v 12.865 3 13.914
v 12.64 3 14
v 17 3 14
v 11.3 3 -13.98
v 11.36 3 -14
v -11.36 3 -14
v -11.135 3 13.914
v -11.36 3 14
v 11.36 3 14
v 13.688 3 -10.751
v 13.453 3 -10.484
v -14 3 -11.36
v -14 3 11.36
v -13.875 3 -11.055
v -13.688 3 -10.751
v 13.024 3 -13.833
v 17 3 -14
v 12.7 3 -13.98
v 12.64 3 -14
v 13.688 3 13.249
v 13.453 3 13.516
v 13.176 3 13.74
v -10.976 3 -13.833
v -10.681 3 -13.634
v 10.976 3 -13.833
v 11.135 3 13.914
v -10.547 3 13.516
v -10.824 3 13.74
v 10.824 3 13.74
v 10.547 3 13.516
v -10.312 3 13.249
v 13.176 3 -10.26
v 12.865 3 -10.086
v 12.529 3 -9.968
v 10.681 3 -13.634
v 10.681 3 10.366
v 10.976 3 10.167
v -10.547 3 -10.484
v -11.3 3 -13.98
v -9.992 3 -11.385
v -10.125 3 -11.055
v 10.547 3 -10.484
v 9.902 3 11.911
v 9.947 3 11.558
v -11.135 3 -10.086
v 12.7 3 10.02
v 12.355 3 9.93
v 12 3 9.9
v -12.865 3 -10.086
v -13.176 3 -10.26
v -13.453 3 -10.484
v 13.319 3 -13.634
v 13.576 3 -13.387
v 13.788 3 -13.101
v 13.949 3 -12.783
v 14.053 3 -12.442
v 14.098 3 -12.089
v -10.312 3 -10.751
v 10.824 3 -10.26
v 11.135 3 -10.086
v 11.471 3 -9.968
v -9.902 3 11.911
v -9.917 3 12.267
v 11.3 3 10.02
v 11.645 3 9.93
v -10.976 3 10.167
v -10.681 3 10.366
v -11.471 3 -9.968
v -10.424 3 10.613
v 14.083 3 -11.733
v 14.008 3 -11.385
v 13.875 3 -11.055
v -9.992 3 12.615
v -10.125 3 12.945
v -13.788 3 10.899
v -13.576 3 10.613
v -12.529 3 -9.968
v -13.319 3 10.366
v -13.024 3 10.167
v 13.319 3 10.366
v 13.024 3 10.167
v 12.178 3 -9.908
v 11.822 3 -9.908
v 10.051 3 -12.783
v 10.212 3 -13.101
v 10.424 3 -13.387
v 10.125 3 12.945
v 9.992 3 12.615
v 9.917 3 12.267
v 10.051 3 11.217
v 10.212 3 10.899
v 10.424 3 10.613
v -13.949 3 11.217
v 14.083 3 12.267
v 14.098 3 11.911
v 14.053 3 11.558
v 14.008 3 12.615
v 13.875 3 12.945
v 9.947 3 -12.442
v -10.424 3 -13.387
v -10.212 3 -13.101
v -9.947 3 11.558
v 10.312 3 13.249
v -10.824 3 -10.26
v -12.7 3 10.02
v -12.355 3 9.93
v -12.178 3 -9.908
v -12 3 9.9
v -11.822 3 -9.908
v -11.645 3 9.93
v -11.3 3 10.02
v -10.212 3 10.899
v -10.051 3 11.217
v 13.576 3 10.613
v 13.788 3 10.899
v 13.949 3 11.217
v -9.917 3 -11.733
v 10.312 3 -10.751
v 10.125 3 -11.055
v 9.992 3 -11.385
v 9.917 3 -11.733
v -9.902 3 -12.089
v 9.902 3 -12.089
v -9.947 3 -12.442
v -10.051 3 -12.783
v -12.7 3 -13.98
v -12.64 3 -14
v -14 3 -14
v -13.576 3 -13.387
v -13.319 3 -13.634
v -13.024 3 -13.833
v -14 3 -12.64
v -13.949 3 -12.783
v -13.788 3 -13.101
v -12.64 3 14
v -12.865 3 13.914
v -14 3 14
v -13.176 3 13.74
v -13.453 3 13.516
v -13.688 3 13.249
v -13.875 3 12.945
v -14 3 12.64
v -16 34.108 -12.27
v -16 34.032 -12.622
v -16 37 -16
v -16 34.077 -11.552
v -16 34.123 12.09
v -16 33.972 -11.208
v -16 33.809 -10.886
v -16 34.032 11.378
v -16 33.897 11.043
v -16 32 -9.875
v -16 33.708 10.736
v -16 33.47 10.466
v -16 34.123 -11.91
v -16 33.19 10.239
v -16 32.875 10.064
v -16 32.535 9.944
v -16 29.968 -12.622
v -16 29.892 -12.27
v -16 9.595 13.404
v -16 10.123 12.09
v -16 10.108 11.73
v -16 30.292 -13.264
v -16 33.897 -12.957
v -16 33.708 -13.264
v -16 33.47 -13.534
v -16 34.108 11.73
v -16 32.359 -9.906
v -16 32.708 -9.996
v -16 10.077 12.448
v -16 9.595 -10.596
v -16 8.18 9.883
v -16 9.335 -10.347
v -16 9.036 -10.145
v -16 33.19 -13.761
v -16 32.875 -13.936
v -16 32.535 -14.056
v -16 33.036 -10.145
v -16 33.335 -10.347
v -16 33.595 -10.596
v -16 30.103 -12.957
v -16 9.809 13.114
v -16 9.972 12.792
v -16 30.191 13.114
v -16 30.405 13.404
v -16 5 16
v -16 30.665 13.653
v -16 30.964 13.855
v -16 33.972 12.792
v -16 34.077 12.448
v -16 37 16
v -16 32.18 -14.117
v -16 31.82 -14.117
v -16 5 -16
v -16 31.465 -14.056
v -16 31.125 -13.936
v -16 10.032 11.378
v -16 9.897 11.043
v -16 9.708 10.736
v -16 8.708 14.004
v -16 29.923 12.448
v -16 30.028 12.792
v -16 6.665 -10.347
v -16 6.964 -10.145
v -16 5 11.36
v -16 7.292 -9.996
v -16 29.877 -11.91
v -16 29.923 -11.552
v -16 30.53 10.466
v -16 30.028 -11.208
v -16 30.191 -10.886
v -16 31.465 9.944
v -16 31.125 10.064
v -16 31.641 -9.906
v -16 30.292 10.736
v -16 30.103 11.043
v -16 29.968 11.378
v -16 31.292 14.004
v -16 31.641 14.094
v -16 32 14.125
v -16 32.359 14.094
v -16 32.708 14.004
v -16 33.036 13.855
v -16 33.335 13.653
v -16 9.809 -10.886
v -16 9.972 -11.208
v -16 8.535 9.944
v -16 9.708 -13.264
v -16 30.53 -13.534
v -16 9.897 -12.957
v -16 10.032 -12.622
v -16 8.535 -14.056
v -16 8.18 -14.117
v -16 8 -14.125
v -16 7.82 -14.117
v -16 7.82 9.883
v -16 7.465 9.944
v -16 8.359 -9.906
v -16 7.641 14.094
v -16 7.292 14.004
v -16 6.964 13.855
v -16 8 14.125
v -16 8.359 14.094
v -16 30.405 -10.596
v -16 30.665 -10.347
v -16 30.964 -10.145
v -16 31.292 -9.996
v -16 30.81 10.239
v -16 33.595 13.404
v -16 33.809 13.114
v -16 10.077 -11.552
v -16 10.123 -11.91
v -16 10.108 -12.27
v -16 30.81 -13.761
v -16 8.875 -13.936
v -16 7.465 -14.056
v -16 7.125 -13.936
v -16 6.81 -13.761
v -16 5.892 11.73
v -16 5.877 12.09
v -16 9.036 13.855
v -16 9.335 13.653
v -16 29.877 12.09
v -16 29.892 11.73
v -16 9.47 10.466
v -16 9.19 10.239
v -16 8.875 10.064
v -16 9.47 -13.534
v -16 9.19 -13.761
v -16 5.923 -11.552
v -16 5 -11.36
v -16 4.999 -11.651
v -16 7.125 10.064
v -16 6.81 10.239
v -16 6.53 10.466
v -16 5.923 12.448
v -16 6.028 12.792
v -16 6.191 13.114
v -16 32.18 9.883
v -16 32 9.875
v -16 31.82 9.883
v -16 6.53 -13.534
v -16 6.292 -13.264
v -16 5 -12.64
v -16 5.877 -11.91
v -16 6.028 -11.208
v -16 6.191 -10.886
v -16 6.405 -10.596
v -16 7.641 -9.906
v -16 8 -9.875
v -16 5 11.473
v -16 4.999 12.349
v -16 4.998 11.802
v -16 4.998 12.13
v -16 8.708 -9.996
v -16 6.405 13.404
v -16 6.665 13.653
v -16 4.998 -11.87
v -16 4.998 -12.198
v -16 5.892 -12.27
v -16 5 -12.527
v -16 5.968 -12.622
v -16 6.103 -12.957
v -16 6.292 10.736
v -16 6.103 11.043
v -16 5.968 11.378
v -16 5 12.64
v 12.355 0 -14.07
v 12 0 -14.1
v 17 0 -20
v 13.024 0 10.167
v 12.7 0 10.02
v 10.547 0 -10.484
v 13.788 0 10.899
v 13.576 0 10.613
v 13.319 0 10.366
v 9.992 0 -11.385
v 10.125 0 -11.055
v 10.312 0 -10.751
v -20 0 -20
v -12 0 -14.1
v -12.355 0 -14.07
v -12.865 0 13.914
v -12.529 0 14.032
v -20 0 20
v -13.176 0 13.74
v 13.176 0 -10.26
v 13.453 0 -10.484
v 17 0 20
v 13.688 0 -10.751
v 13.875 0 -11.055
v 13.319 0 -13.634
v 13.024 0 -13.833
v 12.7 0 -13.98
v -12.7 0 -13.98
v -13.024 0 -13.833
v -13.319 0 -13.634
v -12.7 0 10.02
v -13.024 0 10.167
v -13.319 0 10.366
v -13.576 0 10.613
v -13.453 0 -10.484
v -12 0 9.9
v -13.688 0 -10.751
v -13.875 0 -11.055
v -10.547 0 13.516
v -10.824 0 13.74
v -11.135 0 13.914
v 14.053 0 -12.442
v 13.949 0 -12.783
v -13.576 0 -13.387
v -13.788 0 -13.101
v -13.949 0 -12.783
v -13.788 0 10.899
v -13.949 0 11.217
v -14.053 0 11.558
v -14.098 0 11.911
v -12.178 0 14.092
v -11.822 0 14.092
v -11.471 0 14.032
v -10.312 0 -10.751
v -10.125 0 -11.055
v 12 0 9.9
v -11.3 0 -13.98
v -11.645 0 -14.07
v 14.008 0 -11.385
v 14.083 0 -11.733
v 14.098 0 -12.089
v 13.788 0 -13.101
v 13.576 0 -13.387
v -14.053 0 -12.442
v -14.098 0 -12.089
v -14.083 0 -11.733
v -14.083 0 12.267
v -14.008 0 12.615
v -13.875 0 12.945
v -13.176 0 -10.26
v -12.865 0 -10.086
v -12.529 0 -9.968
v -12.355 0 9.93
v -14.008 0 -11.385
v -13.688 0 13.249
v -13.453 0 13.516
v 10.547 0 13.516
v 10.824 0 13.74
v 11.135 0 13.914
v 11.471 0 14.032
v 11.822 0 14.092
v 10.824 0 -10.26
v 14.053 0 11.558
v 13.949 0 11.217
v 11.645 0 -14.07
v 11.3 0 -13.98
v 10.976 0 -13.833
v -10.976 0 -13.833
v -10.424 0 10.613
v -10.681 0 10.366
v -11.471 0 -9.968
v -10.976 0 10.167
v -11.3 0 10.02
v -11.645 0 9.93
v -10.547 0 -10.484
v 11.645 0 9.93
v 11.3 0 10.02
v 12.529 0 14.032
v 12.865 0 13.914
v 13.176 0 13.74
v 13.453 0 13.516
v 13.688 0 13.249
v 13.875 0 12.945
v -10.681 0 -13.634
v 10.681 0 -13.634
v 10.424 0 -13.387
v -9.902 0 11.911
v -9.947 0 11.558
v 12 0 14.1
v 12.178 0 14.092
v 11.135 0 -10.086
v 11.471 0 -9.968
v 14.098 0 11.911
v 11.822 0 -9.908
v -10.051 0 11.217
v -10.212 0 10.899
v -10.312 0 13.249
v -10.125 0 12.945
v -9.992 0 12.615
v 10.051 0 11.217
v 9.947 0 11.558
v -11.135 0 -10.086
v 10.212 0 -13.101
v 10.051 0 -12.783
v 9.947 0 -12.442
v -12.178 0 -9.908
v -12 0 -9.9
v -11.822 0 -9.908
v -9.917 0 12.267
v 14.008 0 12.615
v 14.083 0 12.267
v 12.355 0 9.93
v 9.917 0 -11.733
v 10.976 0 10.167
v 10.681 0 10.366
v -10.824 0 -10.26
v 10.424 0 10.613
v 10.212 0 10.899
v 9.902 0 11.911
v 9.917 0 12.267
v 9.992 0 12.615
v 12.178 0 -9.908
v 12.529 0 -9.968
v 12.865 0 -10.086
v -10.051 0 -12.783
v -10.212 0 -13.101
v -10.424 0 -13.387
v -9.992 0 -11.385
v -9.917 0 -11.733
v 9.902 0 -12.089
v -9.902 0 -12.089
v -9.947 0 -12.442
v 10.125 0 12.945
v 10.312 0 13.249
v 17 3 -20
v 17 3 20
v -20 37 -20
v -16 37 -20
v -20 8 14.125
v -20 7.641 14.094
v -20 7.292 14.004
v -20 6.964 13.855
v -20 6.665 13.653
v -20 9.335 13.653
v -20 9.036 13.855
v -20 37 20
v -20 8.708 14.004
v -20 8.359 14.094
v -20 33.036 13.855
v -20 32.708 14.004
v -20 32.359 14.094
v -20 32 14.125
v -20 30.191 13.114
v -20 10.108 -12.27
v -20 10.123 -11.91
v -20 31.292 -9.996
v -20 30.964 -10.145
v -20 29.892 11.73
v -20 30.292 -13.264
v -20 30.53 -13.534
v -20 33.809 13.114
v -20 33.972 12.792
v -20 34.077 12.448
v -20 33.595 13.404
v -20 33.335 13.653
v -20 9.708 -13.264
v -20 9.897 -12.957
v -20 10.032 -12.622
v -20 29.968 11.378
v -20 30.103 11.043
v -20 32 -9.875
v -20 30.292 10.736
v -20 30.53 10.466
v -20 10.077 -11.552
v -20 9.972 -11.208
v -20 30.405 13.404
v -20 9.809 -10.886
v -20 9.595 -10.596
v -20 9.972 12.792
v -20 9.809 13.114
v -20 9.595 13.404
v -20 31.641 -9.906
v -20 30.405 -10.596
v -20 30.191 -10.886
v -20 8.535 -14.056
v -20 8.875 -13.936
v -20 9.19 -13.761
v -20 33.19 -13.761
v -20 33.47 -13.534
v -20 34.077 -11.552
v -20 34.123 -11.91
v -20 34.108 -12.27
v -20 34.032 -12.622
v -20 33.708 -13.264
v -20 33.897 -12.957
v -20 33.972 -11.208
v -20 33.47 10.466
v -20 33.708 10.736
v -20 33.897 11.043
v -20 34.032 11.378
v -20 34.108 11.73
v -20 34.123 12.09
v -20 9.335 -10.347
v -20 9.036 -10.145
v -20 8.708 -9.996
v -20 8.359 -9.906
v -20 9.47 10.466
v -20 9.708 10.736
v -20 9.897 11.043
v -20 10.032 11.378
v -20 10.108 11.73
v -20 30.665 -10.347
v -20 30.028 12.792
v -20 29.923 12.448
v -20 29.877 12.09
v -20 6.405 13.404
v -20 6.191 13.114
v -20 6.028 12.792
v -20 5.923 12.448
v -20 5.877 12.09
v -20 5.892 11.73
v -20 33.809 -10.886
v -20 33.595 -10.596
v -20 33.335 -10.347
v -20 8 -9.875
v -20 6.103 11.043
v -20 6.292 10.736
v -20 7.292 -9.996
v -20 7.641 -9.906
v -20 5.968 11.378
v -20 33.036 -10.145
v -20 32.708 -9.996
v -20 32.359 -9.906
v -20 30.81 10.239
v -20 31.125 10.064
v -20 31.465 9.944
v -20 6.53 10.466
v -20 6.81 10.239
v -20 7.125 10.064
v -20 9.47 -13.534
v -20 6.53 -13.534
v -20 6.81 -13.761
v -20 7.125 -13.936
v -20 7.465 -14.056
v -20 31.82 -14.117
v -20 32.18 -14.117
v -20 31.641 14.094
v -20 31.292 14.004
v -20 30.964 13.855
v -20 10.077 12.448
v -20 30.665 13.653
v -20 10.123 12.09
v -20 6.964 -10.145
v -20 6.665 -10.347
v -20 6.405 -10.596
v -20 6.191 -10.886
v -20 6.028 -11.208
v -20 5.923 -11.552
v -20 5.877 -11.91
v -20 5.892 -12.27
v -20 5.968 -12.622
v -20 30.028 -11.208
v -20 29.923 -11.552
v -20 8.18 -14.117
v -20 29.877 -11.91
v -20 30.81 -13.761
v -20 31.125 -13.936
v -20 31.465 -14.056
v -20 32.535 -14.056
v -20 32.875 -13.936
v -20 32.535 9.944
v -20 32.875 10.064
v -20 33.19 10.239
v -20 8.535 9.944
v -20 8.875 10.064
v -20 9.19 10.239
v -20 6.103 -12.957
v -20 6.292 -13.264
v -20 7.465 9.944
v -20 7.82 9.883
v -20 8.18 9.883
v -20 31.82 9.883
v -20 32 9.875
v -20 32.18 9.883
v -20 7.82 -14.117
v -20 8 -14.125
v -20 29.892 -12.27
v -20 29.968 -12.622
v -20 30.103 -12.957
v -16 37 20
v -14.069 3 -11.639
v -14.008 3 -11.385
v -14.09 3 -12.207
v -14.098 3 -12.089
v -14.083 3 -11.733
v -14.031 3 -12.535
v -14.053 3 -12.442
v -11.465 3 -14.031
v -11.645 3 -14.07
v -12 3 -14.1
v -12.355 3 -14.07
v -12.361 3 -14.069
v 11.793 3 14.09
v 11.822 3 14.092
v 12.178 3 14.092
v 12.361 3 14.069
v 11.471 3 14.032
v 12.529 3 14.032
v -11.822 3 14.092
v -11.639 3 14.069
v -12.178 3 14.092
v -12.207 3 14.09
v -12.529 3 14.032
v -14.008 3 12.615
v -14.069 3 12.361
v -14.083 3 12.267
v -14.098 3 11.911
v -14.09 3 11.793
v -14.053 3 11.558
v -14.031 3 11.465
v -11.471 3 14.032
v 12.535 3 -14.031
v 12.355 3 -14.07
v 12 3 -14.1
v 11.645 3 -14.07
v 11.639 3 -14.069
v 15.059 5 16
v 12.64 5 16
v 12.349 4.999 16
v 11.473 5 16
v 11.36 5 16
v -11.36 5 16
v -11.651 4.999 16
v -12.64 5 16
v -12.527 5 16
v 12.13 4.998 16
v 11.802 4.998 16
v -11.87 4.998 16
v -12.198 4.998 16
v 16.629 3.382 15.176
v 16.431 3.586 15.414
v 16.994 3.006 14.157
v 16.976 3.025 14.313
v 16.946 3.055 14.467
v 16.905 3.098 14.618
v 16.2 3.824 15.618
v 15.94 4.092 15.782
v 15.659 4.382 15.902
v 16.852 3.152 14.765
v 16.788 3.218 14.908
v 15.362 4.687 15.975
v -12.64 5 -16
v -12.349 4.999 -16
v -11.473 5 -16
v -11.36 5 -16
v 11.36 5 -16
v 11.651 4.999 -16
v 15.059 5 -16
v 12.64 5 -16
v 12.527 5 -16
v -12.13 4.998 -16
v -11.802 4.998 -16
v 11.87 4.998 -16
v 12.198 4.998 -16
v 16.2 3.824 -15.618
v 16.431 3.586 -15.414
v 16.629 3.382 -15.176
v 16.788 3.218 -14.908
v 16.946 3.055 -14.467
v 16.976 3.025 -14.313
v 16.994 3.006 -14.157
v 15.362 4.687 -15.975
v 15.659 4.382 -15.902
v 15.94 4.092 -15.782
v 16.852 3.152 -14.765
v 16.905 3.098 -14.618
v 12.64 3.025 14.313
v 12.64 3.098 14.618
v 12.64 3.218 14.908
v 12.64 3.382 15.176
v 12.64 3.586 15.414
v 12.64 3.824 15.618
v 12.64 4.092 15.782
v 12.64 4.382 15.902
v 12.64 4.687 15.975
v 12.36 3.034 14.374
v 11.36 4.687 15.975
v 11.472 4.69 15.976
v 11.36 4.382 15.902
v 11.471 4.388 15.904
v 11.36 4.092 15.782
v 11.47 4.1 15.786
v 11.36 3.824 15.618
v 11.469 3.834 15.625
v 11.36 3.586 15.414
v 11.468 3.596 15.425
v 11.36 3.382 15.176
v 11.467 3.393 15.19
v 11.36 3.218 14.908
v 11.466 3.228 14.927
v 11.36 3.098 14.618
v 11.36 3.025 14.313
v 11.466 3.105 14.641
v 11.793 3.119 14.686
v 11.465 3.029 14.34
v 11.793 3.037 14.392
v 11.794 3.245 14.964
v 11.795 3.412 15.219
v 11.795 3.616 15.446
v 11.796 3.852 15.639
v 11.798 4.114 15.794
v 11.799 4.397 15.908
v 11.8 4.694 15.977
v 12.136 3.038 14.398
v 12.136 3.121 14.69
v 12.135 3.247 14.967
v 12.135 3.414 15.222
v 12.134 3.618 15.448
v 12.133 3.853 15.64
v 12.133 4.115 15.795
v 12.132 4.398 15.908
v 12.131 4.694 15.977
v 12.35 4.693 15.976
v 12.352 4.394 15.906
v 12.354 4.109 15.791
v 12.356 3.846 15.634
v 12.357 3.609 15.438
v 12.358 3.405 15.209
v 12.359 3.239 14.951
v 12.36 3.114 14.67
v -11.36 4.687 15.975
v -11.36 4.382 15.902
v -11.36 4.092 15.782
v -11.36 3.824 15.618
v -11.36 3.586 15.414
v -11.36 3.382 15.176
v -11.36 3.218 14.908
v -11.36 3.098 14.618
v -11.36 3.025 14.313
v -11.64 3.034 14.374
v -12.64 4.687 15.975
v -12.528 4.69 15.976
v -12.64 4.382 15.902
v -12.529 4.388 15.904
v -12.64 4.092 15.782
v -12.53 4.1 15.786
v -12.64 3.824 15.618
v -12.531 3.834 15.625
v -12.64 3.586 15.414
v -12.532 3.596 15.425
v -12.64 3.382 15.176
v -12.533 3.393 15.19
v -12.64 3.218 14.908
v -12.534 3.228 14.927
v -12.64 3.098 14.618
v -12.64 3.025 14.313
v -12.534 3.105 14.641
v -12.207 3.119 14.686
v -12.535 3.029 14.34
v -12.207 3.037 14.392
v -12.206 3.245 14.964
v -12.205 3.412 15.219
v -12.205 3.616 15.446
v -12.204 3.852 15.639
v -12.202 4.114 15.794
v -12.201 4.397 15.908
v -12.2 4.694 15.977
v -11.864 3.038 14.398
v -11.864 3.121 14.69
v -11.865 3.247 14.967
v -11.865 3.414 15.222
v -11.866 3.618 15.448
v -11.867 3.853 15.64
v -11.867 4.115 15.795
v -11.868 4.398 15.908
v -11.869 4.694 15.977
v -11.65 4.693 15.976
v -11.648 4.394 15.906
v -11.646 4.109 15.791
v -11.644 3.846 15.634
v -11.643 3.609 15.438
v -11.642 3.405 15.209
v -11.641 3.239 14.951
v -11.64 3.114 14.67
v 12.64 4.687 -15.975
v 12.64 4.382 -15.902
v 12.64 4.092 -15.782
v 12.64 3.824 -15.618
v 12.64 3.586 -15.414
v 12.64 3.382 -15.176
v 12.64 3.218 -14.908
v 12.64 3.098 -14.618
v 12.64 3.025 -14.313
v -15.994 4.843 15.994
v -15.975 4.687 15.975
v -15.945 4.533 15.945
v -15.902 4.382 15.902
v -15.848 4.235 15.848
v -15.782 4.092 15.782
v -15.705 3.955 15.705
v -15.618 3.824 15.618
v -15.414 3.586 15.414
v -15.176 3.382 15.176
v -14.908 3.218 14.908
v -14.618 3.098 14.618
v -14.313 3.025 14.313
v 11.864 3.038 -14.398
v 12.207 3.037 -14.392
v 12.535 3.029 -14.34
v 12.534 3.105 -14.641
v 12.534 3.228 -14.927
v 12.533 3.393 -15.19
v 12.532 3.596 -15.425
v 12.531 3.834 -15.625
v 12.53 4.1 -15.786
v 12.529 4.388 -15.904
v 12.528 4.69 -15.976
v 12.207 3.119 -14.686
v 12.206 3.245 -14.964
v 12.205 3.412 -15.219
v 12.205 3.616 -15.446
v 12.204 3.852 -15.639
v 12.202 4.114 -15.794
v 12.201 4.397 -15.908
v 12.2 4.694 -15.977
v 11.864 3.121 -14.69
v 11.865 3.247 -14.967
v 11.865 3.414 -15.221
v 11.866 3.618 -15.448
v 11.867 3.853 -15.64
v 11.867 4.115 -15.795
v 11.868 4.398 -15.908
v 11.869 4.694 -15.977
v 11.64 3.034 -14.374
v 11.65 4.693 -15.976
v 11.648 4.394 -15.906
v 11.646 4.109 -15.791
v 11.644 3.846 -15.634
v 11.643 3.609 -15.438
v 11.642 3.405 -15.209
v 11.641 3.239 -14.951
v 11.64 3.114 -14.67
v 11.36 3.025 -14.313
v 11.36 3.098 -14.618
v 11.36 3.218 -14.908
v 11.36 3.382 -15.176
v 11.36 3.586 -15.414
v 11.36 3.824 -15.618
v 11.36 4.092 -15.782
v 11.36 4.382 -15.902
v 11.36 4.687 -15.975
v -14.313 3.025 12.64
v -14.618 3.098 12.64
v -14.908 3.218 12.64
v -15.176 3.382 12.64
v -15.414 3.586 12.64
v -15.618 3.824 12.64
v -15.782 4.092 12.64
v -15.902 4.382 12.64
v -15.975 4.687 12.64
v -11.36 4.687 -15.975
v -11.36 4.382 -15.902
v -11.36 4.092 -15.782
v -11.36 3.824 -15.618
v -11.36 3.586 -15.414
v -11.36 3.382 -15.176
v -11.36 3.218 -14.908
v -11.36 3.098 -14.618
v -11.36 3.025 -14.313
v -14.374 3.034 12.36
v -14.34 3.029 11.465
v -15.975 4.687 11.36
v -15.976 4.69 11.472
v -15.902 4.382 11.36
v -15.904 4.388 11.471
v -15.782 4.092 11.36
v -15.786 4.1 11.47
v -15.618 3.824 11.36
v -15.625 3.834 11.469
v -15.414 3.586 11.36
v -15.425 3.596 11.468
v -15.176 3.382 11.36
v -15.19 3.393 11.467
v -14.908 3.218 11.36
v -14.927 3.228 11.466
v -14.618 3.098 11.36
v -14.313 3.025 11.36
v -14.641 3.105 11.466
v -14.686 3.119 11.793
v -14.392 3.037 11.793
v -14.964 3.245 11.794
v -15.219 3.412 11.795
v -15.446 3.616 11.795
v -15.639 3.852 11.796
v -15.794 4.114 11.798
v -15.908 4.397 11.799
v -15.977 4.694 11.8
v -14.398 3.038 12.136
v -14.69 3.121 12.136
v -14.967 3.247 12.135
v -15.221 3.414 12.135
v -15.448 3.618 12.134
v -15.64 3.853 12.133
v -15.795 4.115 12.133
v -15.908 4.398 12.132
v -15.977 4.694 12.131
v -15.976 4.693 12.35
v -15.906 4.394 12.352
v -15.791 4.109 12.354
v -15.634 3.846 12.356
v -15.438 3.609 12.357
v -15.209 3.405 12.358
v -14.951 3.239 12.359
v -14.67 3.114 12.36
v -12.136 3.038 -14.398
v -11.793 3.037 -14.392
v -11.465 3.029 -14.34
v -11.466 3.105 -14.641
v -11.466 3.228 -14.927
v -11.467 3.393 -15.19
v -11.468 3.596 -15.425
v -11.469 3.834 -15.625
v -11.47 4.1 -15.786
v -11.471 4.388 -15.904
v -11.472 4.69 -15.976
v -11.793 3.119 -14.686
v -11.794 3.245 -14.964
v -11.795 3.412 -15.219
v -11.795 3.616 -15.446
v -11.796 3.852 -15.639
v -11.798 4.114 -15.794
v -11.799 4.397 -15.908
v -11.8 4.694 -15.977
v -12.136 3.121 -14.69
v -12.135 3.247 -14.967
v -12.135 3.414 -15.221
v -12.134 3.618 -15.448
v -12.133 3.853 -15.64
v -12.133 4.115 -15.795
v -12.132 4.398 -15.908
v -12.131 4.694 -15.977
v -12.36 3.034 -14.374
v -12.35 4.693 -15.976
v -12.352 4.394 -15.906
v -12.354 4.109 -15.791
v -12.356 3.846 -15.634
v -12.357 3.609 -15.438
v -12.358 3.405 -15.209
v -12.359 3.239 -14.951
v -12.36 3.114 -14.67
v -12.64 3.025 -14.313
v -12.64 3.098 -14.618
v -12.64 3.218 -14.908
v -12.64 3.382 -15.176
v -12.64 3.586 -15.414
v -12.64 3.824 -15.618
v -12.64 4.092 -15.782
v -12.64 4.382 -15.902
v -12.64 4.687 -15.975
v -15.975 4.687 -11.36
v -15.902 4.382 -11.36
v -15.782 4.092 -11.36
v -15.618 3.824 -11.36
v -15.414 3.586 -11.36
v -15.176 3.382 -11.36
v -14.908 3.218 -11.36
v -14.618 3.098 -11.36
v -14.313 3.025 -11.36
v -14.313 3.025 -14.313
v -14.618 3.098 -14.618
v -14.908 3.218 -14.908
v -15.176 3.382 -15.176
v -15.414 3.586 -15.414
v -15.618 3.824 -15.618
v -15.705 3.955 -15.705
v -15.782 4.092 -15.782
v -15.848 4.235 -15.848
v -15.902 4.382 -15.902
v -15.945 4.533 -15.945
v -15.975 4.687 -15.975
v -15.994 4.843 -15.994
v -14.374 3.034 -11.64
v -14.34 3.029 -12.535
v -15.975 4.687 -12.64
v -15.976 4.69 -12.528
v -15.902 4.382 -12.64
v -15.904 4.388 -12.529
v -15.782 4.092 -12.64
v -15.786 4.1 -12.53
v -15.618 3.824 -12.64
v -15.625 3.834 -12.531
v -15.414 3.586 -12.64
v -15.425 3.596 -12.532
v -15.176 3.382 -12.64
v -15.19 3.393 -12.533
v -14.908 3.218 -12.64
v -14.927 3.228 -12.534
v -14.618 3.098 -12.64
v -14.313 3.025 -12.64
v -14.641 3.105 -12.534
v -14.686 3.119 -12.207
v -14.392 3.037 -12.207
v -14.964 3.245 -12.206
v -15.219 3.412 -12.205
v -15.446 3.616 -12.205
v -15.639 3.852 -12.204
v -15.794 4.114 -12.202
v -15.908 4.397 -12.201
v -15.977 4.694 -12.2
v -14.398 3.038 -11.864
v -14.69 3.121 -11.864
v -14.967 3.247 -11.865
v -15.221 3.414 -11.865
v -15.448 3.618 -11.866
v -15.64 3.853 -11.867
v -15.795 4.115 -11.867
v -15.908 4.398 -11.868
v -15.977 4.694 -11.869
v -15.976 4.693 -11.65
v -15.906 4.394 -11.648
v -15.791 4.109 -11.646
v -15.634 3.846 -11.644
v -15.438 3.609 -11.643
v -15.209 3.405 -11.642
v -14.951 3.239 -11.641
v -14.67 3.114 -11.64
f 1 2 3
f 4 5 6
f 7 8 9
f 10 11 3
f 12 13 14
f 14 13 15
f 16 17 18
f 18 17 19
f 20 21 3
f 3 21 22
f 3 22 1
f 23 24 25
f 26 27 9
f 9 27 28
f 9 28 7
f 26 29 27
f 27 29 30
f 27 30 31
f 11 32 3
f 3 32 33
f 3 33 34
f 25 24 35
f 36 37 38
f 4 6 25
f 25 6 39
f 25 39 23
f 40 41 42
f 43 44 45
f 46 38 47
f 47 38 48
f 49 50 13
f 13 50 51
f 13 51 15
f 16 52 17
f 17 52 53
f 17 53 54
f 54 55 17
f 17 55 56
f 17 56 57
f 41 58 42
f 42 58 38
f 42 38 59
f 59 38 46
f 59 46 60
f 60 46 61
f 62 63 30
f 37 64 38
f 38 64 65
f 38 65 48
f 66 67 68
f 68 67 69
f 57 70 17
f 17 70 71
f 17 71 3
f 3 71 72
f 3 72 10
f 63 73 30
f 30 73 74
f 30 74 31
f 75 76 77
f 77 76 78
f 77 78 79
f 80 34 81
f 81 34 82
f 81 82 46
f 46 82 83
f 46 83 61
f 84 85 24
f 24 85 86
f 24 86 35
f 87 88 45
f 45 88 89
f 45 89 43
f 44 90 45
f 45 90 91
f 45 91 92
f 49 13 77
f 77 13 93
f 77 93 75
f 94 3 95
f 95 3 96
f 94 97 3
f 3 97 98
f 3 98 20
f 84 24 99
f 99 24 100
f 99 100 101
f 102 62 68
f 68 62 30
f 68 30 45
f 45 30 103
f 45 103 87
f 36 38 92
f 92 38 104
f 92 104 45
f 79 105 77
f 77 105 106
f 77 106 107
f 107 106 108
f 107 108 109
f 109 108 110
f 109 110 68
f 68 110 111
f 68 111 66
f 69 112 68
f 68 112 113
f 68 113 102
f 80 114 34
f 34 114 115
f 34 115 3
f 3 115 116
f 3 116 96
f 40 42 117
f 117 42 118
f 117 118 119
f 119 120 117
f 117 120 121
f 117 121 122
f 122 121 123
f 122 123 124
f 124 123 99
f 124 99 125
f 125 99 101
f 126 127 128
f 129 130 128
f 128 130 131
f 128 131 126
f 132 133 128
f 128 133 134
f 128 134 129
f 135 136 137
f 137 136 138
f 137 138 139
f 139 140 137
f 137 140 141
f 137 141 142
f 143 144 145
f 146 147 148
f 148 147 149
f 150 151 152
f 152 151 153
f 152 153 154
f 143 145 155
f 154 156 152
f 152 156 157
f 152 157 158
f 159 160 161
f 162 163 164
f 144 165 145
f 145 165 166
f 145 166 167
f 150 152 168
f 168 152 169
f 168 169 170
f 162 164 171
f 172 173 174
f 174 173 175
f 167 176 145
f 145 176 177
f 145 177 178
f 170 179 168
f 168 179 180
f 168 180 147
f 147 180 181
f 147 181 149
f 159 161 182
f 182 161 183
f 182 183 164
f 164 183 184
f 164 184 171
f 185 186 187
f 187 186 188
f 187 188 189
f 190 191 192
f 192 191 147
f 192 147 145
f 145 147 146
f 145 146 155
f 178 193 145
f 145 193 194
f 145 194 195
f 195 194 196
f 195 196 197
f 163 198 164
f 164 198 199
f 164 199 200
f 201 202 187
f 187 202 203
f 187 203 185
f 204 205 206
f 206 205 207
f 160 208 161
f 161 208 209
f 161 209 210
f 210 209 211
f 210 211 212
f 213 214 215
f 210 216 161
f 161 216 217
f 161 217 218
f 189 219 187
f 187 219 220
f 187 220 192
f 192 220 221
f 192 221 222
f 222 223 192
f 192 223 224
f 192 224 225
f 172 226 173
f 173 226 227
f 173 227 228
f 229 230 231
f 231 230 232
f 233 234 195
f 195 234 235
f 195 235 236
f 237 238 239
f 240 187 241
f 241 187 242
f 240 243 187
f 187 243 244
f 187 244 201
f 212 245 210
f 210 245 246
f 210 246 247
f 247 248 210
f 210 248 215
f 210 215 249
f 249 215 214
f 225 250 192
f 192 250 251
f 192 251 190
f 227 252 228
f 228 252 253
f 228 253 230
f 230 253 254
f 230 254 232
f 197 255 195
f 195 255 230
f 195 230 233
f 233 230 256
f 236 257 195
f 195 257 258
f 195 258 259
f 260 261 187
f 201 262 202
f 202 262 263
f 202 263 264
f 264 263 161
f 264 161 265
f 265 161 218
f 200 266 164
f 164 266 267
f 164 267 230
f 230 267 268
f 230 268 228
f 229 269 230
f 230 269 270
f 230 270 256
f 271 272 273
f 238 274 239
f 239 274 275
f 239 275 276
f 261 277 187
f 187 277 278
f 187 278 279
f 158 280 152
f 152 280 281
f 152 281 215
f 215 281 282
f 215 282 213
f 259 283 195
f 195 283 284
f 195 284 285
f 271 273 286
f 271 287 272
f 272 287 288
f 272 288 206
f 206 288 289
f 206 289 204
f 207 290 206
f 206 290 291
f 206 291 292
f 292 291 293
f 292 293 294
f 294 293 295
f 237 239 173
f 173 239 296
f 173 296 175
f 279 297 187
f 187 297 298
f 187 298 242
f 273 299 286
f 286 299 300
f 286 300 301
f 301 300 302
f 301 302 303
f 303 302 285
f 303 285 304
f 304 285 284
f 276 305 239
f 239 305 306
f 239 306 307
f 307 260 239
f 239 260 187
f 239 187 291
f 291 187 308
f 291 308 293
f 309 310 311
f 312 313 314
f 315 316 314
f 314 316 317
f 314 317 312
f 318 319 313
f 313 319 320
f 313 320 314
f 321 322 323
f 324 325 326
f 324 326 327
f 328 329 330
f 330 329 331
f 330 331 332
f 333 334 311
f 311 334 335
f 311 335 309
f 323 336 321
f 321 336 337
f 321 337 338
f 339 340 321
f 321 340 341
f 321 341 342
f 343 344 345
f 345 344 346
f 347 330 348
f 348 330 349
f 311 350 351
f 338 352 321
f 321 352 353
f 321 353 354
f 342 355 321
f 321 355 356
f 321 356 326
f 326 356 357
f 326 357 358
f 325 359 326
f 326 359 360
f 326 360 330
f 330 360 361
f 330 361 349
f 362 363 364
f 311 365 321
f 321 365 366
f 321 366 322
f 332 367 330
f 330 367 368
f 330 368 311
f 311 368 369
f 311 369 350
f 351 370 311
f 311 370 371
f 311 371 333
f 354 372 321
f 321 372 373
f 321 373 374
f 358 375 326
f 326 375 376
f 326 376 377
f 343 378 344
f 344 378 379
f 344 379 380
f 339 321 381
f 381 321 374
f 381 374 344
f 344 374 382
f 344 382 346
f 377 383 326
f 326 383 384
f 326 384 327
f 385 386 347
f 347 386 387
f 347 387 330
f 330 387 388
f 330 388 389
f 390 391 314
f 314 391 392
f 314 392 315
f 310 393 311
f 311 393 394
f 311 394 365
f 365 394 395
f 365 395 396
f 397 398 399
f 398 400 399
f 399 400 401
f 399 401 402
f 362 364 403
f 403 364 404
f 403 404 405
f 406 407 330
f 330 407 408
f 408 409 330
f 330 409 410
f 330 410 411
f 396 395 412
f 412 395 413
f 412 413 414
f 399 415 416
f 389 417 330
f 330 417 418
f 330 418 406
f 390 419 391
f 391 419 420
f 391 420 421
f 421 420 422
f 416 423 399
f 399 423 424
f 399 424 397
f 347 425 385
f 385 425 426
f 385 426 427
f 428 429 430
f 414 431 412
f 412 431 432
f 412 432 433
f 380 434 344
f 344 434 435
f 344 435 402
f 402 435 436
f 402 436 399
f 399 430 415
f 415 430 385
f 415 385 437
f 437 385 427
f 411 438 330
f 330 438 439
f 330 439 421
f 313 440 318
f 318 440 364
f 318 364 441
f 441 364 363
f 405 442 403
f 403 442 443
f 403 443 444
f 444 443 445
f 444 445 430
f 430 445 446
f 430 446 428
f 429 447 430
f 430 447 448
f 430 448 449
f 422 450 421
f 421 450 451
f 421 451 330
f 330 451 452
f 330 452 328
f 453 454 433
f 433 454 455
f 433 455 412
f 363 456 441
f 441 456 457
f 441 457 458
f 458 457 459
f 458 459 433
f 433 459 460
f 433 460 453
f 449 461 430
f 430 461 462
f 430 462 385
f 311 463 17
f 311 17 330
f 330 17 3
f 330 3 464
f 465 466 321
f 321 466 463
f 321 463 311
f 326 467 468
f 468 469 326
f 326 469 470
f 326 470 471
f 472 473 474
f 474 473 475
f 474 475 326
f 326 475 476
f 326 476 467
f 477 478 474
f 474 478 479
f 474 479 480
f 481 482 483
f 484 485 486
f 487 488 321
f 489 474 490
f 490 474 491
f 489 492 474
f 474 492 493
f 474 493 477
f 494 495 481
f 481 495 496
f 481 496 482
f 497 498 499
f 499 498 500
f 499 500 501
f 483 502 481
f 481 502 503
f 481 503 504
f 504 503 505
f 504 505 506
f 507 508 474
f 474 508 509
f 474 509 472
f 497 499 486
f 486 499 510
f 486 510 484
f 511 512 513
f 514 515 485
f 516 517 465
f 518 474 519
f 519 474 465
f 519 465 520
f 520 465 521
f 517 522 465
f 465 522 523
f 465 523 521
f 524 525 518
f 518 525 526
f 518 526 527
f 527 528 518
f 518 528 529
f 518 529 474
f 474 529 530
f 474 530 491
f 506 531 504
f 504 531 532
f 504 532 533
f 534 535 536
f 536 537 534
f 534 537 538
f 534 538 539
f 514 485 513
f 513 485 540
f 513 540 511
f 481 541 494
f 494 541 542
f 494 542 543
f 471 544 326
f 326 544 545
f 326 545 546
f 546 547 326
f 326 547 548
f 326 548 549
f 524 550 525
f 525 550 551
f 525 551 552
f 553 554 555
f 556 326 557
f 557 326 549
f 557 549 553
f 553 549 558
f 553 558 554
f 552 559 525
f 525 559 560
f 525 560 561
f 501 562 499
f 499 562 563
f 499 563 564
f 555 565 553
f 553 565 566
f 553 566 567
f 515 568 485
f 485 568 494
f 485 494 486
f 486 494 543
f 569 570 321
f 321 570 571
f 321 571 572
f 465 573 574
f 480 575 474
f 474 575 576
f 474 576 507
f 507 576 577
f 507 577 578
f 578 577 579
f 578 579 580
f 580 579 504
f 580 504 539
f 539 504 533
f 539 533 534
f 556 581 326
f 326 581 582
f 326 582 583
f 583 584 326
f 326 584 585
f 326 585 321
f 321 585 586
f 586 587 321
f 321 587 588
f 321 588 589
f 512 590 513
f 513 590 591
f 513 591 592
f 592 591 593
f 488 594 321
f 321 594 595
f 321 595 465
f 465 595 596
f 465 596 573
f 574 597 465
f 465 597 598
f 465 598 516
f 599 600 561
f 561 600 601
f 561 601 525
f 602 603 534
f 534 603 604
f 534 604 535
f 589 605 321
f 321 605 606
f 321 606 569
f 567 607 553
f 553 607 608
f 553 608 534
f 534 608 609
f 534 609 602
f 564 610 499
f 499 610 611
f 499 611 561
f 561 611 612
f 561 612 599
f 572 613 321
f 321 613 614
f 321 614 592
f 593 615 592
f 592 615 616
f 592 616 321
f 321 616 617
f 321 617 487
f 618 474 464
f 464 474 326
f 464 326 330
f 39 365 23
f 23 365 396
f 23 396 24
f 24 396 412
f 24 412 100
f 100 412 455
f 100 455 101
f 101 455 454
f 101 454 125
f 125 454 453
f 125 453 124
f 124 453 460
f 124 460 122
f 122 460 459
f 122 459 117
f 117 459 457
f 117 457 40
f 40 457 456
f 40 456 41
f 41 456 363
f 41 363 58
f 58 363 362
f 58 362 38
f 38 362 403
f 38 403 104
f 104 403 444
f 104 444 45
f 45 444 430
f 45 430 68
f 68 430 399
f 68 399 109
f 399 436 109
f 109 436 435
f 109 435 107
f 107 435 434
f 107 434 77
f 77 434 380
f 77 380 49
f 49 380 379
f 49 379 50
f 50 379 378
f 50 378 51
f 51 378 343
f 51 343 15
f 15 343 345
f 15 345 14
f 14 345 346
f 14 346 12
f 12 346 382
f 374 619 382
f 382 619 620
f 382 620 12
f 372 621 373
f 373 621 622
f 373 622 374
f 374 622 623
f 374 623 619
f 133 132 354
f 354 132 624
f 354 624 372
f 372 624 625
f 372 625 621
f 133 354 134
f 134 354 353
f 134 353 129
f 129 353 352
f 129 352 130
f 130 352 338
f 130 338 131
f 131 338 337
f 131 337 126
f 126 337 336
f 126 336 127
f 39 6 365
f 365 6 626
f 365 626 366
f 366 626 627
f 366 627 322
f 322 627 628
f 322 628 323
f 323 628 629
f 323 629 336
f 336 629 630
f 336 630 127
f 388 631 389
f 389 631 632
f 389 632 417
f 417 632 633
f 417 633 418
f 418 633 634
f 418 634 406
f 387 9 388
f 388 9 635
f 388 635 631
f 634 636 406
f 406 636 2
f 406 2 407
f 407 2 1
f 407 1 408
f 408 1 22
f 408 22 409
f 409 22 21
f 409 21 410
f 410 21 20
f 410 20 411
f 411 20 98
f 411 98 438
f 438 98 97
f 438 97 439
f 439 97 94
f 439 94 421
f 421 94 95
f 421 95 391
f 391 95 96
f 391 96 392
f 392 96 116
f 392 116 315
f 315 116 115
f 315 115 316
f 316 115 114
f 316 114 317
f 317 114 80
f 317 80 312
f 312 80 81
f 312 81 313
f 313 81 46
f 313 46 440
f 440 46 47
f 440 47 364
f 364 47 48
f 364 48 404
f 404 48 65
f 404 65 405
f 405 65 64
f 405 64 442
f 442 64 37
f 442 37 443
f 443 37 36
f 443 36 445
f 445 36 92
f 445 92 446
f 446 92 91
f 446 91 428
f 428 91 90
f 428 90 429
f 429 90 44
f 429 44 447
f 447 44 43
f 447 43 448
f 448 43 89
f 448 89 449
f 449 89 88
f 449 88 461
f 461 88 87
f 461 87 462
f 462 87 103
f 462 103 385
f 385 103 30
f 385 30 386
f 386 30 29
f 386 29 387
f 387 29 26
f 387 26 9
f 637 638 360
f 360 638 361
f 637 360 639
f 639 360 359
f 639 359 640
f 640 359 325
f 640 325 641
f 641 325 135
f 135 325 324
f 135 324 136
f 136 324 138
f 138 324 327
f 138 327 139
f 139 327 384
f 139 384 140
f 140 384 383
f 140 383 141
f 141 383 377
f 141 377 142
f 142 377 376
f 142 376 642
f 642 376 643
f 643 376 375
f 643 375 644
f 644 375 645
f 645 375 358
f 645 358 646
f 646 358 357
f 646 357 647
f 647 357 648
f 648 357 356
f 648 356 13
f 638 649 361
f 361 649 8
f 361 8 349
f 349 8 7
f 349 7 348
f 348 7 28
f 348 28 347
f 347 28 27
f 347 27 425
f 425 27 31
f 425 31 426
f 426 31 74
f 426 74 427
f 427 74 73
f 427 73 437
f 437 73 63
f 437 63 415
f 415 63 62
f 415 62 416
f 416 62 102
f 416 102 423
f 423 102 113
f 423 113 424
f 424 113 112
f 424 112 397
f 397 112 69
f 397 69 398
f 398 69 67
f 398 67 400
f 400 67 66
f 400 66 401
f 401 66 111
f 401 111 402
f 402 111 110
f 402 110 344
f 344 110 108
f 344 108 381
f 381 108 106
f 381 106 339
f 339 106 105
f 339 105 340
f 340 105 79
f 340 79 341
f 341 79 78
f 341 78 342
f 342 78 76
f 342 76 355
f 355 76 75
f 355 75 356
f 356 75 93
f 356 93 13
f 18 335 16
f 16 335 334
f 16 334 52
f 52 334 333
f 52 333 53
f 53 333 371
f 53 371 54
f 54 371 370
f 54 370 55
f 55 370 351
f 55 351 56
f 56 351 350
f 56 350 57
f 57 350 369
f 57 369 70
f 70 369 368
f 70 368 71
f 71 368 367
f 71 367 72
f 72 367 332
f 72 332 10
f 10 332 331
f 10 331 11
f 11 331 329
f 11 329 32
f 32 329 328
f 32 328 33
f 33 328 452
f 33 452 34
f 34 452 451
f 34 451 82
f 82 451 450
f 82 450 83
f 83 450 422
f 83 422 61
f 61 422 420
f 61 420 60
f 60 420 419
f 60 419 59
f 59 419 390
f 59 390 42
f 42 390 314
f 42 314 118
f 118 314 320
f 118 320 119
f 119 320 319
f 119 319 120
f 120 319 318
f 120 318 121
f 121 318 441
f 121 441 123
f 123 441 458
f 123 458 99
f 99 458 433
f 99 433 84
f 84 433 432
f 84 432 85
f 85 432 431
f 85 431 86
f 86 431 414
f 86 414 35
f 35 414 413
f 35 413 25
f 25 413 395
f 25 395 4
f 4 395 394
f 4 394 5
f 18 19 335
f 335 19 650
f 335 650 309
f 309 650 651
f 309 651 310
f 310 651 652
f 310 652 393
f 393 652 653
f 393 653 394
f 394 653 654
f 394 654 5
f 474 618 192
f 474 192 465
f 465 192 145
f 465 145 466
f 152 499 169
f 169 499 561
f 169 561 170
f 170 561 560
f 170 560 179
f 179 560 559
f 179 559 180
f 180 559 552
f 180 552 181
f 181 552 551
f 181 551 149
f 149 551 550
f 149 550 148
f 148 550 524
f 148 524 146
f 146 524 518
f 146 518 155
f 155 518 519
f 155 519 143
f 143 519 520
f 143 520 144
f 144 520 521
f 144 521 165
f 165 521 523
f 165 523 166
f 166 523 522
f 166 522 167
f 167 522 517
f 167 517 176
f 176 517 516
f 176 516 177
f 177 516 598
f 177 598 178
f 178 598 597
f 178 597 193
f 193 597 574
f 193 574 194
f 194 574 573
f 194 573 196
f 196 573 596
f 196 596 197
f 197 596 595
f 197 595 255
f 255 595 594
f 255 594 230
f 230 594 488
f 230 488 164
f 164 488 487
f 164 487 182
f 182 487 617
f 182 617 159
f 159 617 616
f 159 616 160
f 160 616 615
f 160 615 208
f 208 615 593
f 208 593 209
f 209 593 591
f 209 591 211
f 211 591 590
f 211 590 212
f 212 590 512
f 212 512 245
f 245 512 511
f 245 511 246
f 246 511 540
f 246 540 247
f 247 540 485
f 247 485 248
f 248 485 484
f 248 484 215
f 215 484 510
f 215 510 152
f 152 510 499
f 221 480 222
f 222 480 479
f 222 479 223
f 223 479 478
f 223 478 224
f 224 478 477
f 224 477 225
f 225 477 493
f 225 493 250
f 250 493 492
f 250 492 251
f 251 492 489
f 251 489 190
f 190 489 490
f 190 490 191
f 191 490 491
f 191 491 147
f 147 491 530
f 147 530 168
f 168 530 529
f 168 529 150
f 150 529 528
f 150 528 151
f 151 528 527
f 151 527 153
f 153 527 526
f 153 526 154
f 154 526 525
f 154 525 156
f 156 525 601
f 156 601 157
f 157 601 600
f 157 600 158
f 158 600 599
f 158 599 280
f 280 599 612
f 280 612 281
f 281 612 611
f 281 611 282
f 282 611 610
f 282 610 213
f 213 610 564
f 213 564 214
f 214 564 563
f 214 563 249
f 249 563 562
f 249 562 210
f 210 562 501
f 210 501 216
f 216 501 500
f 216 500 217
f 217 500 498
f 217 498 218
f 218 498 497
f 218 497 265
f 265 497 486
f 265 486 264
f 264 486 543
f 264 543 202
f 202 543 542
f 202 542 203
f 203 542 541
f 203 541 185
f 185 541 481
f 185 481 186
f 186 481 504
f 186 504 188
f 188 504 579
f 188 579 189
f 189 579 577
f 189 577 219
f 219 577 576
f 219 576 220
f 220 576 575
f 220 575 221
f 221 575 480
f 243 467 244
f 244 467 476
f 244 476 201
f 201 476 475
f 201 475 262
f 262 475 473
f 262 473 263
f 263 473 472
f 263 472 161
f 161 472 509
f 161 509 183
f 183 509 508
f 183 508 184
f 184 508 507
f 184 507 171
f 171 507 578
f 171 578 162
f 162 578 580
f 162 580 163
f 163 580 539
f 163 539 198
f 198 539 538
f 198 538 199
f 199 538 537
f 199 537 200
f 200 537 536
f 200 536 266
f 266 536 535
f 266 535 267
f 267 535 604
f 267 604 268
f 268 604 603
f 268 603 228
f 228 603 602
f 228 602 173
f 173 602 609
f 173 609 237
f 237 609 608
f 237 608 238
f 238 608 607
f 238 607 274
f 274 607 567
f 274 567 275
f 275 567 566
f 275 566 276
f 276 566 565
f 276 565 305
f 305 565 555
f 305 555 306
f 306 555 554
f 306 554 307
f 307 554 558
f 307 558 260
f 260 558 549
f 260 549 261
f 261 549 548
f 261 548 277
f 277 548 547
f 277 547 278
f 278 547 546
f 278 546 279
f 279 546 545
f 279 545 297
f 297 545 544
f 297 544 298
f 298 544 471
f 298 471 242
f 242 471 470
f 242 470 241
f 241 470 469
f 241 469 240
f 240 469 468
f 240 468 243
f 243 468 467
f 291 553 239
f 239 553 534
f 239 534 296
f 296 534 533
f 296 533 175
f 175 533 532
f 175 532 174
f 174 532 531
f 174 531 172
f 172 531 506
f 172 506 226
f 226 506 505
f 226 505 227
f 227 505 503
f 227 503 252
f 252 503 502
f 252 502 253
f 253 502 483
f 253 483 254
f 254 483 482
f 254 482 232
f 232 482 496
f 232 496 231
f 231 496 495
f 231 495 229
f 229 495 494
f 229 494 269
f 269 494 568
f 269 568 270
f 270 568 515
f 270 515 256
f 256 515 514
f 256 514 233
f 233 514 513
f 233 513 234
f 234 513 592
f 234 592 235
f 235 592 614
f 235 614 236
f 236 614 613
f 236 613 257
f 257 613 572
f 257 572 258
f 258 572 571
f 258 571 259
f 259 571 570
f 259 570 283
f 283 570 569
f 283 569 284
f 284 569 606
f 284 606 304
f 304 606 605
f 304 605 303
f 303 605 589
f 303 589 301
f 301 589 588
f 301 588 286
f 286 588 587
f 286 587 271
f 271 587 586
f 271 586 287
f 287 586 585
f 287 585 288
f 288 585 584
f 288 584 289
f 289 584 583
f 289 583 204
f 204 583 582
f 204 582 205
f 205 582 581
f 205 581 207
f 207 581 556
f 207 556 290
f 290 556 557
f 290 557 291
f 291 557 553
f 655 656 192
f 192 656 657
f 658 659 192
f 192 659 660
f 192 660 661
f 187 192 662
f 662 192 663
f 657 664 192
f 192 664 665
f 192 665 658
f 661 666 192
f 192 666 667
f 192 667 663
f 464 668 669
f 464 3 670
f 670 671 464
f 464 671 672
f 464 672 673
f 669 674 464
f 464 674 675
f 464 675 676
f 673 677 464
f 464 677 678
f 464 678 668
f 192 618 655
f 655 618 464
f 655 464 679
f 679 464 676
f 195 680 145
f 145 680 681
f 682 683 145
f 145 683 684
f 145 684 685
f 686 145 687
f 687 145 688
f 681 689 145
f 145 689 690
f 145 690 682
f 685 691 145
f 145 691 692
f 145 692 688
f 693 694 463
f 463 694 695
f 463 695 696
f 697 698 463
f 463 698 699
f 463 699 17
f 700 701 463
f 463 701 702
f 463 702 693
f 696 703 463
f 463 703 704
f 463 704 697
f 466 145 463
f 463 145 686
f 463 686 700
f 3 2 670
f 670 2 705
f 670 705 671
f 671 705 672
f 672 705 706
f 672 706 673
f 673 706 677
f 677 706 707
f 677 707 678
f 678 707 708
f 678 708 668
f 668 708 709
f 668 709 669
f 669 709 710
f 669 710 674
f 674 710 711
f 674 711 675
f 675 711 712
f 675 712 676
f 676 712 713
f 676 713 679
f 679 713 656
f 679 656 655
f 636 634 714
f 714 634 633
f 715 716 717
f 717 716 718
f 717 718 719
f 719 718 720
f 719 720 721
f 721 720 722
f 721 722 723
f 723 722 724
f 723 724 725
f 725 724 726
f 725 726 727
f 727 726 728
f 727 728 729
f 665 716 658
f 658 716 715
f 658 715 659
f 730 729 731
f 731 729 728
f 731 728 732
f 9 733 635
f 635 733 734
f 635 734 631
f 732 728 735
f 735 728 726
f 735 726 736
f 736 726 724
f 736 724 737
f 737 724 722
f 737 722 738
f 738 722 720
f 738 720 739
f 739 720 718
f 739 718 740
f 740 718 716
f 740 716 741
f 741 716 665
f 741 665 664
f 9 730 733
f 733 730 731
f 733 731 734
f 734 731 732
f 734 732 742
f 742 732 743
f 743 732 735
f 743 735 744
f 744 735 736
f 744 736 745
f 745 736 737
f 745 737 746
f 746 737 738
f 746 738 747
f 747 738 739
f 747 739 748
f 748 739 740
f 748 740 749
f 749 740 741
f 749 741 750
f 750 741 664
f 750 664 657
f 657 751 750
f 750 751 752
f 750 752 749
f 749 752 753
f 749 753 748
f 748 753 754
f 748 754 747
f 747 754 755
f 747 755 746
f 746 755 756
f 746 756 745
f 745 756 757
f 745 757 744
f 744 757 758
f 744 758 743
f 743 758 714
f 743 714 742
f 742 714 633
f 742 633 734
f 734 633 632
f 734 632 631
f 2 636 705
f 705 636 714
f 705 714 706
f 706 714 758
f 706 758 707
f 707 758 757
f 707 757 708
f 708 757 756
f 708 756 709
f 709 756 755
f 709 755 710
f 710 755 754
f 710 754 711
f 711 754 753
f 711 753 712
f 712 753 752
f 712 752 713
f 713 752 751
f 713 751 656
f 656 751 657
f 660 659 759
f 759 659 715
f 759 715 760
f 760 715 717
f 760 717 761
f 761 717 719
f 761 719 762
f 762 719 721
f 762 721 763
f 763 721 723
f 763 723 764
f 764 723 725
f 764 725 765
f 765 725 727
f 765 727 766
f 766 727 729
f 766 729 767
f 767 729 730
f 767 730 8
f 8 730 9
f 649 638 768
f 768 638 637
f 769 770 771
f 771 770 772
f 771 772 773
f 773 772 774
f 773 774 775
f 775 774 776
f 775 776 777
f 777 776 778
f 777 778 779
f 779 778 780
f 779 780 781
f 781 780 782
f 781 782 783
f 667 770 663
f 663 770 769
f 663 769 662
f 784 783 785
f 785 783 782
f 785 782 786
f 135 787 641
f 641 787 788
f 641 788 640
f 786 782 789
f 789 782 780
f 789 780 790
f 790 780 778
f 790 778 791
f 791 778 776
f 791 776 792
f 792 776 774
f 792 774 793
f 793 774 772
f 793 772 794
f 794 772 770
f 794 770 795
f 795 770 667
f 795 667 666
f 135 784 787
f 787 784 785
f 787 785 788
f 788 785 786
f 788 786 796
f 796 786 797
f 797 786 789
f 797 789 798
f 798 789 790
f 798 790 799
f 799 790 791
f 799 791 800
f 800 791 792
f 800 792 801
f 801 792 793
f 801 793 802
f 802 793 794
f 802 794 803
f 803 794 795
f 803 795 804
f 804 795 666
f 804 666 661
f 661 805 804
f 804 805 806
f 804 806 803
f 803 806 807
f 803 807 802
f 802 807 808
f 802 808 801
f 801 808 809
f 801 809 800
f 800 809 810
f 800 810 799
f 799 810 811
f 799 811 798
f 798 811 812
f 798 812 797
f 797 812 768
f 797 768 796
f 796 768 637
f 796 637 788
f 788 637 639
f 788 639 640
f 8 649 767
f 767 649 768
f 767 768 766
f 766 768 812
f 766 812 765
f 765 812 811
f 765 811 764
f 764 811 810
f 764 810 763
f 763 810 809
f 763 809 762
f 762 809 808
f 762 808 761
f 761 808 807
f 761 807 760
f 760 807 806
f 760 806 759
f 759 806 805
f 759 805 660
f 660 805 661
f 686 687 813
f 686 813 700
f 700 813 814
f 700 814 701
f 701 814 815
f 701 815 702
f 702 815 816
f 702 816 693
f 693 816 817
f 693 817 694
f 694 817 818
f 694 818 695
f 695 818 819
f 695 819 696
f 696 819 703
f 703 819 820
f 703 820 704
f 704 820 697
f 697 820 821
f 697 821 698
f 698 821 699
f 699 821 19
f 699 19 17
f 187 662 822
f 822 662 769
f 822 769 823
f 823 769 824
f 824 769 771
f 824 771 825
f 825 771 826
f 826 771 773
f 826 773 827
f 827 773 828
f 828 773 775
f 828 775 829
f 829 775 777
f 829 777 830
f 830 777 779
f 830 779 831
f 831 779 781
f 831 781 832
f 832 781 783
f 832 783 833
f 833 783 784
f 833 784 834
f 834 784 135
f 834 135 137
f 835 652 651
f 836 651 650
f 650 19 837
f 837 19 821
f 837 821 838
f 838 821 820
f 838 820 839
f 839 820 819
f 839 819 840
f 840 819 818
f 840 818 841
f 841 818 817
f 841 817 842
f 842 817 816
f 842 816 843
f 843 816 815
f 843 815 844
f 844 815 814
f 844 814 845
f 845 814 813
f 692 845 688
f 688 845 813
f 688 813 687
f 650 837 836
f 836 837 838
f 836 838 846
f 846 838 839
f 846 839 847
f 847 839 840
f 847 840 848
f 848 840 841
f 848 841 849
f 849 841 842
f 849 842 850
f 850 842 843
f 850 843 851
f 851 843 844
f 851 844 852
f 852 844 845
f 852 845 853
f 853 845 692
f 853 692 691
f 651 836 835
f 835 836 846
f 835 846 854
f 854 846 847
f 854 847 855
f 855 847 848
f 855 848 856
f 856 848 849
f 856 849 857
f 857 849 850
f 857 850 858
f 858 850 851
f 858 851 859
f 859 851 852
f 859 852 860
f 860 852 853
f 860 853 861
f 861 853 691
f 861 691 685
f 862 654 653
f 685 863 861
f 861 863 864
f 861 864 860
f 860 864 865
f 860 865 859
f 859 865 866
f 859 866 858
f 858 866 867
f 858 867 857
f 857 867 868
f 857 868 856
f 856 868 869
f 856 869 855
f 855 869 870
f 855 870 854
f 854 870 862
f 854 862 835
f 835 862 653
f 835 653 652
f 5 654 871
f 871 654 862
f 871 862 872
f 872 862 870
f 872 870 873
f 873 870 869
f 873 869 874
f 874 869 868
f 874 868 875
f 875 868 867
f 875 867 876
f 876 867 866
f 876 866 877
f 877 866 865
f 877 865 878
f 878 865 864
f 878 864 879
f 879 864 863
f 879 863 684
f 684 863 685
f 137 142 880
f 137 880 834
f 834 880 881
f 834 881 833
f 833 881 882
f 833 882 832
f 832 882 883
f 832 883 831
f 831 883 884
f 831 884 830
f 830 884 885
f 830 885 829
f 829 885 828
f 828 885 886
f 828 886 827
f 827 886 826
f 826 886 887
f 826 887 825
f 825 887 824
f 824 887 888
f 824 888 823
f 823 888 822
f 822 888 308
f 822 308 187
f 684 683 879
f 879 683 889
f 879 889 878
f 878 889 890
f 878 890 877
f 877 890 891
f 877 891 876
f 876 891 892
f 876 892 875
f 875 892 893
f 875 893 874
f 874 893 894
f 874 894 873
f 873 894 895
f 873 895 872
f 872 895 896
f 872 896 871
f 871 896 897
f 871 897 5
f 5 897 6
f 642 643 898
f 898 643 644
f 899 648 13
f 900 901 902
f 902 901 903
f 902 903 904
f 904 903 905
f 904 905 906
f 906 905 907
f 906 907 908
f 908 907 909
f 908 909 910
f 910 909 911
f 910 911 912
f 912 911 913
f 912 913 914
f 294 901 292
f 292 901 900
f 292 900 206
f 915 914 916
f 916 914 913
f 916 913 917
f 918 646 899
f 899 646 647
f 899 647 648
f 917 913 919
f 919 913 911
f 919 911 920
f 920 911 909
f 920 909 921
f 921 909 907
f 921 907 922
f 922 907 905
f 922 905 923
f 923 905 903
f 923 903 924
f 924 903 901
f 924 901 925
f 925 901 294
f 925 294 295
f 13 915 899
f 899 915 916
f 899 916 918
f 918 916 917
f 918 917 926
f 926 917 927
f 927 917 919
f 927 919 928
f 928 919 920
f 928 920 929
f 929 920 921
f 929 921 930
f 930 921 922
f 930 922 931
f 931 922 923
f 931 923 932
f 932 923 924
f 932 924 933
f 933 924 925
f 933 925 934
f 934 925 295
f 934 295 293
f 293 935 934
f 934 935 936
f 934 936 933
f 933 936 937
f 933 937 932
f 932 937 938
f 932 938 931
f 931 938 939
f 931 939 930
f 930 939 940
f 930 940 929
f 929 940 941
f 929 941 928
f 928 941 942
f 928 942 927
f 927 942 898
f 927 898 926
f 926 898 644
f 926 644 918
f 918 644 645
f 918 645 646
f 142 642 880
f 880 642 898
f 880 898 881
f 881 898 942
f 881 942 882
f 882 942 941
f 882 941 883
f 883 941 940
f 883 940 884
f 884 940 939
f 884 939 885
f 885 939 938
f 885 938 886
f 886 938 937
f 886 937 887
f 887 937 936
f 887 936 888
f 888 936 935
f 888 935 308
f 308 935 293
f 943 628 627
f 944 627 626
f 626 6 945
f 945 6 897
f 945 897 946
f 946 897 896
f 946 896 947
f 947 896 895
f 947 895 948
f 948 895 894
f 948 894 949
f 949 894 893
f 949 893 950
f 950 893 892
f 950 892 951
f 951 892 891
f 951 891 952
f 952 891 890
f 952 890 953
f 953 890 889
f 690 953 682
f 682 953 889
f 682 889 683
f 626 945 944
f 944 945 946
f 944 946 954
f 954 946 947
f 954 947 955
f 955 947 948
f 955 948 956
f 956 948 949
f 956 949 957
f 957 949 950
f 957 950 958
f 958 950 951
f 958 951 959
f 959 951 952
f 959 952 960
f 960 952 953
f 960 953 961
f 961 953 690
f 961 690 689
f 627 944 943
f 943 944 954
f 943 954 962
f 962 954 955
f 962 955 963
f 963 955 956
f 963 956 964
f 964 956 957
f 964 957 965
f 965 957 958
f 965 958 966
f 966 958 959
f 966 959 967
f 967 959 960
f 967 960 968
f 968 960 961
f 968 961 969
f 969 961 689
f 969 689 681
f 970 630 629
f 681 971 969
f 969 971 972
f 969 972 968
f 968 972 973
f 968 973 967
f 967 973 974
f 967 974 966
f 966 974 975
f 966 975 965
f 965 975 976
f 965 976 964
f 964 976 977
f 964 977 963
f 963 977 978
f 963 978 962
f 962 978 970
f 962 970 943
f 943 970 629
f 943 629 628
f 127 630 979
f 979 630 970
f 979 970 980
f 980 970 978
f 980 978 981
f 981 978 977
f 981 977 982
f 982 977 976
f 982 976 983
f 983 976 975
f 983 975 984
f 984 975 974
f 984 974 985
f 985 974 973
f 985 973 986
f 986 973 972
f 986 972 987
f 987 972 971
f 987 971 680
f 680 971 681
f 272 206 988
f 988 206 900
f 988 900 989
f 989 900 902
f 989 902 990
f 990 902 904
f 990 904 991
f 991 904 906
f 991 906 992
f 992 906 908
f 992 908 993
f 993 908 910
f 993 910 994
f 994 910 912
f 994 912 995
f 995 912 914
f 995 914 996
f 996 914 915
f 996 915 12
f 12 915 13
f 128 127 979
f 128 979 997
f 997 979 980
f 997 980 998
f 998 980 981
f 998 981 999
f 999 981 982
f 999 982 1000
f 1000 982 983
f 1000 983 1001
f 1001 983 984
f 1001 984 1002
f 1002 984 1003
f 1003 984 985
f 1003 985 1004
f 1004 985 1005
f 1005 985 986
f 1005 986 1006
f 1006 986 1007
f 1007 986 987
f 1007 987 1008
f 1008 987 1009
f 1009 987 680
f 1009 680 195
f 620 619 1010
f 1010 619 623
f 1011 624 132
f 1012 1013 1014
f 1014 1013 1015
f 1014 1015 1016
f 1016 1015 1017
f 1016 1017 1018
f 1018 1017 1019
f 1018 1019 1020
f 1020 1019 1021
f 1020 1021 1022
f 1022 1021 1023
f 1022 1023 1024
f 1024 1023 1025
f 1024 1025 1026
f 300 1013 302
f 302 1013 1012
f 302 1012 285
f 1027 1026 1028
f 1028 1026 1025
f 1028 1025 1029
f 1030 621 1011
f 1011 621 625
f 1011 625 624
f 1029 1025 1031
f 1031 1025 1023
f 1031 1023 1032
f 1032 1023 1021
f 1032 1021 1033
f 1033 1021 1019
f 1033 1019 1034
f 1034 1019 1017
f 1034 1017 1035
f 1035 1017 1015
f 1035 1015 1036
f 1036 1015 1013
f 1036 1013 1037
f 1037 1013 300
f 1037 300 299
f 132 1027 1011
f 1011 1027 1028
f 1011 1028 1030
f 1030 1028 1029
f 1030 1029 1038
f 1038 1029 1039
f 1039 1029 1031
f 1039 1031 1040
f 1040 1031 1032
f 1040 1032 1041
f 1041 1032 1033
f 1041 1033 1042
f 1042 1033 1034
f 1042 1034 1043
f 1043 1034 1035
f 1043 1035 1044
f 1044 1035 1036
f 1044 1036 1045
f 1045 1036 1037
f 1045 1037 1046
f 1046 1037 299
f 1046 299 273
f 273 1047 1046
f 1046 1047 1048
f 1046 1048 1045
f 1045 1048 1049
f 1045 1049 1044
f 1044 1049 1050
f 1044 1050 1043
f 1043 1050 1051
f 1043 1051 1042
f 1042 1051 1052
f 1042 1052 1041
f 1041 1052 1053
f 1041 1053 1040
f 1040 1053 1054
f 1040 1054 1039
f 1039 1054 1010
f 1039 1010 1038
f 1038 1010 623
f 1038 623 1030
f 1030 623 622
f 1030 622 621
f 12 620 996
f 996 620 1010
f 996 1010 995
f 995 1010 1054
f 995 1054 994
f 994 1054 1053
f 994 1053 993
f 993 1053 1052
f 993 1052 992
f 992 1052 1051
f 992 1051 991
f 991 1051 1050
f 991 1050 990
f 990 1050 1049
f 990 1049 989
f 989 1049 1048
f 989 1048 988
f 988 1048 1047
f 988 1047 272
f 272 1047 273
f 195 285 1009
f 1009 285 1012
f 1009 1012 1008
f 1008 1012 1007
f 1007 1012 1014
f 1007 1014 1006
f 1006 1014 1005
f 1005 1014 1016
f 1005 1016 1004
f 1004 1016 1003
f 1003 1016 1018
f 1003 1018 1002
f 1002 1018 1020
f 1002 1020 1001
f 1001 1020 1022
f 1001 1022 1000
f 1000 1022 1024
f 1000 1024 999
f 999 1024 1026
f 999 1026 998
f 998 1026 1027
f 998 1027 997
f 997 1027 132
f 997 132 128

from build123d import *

# Parameters (mm, degrees)
SSS_W               = 37
SSS_H               = 40
SSS_R               = 2.1
BOSS_EXTRUDE2_DEPTH = 3
SKETCH1_W           = 40
SKETCH1_H           = 37
SKETCH1_R           = 2.125
BOSS_EXTRUDE3_DEPTH = 4
BOSS_EXTRUDE4_DEPTH = 4
FILLET1_R           = 2


with BuildPart() as part:
    # sss → Boss-Extrude2 (new body)
    with BuildSketch(Plane(origin=(0, 0, 0), x_dir=(1, 0, 0), z_dir=(0, 1, 0))):
        with Locations((-1.5, 0)):
            Rectangle(SSS_W, SSS_H)
        with Locations(Location((-12, 12, 0), (0, 0, 270))):
            Circle(SSS_R, mode=Mode.SUBTRACT)
        with Locations(Location((12, 12, 0), (0, 0, 90))):
            Circle(SSS_R, mode=Mode.SUBTRACT)
        with Locations(Location((12, -12, 0), (0, 0, 270))):
            Circle(SSS_R, mode=Mode.SUBTRACT)
        with Locations(Location((-12, -12, 0), (0, 0, 90))):
            Circle(SSS_R, mode=Mode.SUBTRACT)
    extrude(amount=BOSS_EXTRUDE2_DEPTH)

    # Sketch1 → Boss-Extrude3 (add)
    with BuildSketch(Plane.ZY.offset(20)):
        with Locations((0, 18.5)):
            Rectangle(SKETCH1_W, SKETCH1_H)
        with Locations((-12, 32)):
            Circle(SKETCH1_R, mode=Mode.SUBTRACT)
        with Locations(Location((12, 32, 0), (0, 0, 180))):
            Circle(SKETCH1_R, mode=Mode.SUBTRACT)
        with Locations((12, 8)):
            Circle(SKETCH1_R, mode=Mode.SUBTRACT)
        with Locations(Location((-12, 8, 0), (0, 0, 180))):
            Circle(SKETCH1_R, mode=Mode.SUBTRACT)
    extrude(amount=-BOSS_EXTRUDE3_DEPTH)

    # Sketch2 → Boss-Extrude4 (add)
    with BuildSketch(Plane.XY.offset(20)):
        Polygon((-20, 37), (-20, 0), (17, 0), (17, 3), (-16, 37), align=None)
    boss_extrude4 = extrude(amount=-BOSS_EXTRUDE4_DEPTH)

    # Mirror1: Boss-Extrude4 across plane
    add(boss_extrude4.mirror(Plane.XY))

    # Fillet1
    fillet1_edges = [part.edges().sort_by_distance(p)[0] for p in [
        (0.5, 3, 16),
        (-16, 3, 0),
        (0.5, 3, -16),
    ]]
    fillet(fillet1_edges, radius=FILLET1_R)


solid = part.part
